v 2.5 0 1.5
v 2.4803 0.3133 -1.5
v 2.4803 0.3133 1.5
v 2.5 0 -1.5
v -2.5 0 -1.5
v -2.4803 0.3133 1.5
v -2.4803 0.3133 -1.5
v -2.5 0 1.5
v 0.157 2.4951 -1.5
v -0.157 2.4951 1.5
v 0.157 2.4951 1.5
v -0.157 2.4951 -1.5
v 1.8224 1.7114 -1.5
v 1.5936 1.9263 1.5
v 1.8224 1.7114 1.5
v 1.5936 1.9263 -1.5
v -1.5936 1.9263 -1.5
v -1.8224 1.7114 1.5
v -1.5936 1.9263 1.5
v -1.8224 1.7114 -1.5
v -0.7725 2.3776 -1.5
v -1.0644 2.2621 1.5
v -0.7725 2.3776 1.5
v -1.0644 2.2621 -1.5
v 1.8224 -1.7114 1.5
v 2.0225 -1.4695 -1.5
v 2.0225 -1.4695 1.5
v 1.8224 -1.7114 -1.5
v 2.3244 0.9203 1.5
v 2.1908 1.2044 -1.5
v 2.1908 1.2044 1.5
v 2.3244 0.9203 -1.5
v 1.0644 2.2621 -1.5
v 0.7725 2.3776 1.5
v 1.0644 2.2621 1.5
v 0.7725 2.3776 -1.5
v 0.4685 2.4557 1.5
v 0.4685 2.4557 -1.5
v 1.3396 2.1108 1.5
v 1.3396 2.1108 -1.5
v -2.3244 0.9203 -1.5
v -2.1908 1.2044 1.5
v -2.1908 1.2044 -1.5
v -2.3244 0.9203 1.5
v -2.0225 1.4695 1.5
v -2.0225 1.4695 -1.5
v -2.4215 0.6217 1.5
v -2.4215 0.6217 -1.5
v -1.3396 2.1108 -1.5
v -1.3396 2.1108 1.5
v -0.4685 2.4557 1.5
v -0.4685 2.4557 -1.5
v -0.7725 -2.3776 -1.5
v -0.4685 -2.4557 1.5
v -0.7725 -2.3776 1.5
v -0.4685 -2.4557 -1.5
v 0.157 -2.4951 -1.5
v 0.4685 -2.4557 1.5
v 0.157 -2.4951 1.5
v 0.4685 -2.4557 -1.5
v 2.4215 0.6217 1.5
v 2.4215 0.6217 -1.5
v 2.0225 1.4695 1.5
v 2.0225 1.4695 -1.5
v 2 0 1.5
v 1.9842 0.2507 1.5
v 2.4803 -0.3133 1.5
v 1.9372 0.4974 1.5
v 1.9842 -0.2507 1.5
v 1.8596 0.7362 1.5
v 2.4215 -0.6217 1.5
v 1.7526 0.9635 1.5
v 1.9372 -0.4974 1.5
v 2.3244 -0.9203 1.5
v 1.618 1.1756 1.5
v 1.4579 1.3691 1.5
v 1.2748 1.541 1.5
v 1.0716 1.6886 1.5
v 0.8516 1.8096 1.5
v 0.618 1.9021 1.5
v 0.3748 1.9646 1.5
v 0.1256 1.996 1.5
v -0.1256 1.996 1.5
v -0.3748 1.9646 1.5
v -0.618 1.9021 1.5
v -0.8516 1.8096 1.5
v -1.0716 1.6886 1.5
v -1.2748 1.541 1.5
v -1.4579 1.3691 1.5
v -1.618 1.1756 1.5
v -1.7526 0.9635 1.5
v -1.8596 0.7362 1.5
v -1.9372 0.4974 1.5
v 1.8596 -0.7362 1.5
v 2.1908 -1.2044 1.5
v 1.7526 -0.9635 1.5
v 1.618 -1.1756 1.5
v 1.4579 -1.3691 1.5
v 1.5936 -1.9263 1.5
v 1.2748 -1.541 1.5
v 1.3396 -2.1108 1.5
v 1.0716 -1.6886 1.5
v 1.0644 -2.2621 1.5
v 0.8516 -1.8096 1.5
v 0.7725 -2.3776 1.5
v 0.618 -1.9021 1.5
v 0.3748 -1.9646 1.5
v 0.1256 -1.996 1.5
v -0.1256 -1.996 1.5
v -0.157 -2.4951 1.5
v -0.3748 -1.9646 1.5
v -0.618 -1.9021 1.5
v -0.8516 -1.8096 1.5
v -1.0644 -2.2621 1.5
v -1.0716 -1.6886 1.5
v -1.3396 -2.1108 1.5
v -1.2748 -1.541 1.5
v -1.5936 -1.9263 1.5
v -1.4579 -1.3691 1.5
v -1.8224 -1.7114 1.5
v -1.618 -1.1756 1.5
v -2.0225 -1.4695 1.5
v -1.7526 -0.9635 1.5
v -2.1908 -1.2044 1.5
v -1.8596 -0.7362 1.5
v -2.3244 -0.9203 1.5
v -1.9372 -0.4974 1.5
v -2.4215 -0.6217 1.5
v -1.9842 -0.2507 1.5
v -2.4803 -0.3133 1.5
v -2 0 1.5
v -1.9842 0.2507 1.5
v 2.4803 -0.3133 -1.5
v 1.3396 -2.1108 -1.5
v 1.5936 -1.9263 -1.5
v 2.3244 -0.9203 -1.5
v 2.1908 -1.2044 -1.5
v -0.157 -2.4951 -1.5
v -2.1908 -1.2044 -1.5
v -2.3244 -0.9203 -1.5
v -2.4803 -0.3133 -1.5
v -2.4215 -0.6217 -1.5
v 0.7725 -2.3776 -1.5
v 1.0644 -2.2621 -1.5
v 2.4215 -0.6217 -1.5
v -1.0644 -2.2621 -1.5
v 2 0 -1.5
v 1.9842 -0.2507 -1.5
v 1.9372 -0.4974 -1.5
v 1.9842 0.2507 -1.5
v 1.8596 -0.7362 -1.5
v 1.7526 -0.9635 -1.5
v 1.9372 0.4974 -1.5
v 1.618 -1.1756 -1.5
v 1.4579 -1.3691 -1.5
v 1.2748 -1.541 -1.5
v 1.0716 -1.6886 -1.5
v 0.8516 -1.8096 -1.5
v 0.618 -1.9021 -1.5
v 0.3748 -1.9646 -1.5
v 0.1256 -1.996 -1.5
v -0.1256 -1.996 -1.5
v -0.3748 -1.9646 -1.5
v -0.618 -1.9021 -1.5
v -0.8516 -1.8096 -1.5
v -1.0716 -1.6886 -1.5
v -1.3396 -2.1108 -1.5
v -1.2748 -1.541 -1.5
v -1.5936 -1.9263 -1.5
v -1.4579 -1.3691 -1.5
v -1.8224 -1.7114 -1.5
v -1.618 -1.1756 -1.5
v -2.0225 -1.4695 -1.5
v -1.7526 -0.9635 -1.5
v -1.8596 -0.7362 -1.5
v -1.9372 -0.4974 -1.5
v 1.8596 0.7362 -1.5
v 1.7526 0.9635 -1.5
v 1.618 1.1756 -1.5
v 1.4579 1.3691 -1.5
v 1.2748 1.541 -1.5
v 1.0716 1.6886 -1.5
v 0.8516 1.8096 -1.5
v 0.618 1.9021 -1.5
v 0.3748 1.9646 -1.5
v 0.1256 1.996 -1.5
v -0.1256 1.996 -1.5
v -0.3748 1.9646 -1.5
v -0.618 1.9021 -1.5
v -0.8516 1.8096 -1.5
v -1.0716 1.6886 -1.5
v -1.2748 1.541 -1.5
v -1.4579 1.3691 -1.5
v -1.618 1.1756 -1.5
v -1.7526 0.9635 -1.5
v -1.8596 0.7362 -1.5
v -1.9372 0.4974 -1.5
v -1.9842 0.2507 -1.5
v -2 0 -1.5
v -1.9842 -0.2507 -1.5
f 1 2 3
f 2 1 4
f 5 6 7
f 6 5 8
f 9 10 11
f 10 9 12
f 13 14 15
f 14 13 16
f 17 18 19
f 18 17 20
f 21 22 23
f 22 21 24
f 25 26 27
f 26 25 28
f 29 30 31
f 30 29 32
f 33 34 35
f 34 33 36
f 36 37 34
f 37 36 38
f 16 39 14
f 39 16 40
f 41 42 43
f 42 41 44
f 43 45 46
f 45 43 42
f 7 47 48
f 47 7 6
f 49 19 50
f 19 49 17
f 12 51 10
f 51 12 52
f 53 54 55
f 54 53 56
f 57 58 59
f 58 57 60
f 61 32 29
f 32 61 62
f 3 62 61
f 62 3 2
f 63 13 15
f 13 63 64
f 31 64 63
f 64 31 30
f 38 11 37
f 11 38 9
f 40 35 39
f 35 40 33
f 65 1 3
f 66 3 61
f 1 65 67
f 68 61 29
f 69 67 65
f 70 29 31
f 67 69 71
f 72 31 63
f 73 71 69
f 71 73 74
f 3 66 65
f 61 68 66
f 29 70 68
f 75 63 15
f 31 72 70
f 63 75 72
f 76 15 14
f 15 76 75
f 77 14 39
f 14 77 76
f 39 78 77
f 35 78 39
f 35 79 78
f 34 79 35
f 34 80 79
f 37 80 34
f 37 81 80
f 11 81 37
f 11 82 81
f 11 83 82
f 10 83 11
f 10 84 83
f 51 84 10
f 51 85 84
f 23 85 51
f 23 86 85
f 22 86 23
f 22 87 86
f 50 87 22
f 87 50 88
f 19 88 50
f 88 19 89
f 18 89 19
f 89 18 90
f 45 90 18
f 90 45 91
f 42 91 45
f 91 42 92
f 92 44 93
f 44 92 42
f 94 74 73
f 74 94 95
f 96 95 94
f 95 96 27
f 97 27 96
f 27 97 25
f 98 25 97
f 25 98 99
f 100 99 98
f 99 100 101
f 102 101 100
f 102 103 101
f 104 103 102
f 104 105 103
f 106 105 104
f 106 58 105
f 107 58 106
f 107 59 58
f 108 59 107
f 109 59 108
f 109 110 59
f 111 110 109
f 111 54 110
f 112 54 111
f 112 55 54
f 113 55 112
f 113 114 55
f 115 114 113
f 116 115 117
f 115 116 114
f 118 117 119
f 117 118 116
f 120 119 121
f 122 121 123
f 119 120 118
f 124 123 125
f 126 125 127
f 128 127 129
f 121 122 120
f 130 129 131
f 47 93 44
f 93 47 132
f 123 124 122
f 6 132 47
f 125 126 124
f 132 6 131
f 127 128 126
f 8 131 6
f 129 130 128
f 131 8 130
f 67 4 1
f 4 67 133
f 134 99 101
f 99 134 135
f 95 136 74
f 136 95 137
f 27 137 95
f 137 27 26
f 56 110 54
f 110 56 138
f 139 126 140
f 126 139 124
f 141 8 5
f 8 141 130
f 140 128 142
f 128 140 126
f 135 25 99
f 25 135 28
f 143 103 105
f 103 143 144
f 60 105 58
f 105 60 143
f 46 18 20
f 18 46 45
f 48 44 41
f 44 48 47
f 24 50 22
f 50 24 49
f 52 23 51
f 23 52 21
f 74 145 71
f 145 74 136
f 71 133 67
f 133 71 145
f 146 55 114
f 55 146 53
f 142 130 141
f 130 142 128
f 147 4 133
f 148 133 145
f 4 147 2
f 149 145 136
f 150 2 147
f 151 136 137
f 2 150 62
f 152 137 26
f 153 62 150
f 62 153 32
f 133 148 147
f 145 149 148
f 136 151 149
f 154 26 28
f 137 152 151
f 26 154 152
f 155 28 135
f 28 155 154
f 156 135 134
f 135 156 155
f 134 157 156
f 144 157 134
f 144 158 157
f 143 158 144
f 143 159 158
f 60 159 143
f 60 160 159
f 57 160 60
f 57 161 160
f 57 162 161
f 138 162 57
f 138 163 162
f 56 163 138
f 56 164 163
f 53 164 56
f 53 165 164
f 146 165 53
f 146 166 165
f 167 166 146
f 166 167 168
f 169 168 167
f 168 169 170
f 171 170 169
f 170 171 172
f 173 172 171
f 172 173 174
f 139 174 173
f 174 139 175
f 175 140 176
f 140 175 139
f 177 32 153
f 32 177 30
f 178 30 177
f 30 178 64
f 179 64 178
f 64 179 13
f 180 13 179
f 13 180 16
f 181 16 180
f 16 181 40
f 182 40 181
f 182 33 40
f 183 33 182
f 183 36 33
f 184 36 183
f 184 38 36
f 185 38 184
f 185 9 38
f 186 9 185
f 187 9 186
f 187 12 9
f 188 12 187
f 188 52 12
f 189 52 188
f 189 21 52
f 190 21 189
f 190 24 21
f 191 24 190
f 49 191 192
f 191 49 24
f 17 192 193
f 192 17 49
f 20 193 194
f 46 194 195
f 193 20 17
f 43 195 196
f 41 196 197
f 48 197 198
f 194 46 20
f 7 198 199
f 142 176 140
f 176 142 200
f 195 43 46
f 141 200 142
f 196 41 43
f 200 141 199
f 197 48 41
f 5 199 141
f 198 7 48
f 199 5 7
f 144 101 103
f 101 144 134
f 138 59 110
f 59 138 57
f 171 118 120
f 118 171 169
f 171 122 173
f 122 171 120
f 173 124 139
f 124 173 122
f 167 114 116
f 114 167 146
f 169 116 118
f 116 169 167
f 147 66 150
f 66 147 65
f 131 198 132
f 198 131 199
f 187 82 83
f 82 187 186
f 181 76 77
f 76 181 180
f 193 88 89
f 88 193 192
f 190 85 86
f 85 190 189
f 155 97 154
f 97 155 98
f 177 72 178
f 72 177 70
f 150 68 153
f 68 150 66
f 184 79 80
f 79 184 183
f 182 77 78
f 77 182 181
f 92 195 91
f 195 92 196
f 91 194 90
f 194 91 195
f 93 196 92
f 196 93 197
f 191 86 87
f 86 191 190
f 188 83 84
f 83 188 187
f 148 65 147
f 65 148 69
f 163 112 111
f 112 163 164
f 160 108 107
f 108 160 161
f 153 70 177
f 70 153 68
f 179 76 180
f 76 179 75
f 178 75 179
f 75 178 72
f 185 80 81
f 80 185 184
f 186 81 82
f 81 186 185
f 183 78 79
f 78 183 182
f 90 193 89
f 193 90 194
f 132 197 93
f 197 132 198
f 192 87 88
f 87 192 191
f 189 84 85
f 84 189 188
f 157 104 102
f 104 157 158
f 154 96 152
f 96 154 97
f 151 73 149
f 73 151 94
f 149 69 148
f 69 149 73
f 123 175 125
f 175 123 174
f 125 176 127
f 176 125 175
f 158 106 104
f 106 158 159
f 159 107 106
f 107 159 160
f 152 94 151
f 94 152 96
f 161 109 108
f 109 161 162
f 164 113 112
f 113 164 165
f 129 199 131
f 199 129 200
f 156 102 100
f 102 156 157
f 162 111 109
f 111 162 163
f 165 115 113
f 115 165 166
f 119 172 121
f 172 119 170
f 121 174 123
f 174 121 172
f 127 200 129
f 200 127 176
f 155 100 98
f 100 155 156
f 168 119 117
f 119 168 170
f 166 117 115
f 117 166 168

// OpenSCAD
$fn = 50;


difference() {
	union() {
		translate(v = [0, 0, -1.5000000000]) {
			cylinder(h = 3, r = 2.5000000000);
		}
	}
	union() {
		translate(v = [0, 0, -100.0000000000]) {
			cylinder(h = 200, r = 2.0000000000);
		}
	}
}
